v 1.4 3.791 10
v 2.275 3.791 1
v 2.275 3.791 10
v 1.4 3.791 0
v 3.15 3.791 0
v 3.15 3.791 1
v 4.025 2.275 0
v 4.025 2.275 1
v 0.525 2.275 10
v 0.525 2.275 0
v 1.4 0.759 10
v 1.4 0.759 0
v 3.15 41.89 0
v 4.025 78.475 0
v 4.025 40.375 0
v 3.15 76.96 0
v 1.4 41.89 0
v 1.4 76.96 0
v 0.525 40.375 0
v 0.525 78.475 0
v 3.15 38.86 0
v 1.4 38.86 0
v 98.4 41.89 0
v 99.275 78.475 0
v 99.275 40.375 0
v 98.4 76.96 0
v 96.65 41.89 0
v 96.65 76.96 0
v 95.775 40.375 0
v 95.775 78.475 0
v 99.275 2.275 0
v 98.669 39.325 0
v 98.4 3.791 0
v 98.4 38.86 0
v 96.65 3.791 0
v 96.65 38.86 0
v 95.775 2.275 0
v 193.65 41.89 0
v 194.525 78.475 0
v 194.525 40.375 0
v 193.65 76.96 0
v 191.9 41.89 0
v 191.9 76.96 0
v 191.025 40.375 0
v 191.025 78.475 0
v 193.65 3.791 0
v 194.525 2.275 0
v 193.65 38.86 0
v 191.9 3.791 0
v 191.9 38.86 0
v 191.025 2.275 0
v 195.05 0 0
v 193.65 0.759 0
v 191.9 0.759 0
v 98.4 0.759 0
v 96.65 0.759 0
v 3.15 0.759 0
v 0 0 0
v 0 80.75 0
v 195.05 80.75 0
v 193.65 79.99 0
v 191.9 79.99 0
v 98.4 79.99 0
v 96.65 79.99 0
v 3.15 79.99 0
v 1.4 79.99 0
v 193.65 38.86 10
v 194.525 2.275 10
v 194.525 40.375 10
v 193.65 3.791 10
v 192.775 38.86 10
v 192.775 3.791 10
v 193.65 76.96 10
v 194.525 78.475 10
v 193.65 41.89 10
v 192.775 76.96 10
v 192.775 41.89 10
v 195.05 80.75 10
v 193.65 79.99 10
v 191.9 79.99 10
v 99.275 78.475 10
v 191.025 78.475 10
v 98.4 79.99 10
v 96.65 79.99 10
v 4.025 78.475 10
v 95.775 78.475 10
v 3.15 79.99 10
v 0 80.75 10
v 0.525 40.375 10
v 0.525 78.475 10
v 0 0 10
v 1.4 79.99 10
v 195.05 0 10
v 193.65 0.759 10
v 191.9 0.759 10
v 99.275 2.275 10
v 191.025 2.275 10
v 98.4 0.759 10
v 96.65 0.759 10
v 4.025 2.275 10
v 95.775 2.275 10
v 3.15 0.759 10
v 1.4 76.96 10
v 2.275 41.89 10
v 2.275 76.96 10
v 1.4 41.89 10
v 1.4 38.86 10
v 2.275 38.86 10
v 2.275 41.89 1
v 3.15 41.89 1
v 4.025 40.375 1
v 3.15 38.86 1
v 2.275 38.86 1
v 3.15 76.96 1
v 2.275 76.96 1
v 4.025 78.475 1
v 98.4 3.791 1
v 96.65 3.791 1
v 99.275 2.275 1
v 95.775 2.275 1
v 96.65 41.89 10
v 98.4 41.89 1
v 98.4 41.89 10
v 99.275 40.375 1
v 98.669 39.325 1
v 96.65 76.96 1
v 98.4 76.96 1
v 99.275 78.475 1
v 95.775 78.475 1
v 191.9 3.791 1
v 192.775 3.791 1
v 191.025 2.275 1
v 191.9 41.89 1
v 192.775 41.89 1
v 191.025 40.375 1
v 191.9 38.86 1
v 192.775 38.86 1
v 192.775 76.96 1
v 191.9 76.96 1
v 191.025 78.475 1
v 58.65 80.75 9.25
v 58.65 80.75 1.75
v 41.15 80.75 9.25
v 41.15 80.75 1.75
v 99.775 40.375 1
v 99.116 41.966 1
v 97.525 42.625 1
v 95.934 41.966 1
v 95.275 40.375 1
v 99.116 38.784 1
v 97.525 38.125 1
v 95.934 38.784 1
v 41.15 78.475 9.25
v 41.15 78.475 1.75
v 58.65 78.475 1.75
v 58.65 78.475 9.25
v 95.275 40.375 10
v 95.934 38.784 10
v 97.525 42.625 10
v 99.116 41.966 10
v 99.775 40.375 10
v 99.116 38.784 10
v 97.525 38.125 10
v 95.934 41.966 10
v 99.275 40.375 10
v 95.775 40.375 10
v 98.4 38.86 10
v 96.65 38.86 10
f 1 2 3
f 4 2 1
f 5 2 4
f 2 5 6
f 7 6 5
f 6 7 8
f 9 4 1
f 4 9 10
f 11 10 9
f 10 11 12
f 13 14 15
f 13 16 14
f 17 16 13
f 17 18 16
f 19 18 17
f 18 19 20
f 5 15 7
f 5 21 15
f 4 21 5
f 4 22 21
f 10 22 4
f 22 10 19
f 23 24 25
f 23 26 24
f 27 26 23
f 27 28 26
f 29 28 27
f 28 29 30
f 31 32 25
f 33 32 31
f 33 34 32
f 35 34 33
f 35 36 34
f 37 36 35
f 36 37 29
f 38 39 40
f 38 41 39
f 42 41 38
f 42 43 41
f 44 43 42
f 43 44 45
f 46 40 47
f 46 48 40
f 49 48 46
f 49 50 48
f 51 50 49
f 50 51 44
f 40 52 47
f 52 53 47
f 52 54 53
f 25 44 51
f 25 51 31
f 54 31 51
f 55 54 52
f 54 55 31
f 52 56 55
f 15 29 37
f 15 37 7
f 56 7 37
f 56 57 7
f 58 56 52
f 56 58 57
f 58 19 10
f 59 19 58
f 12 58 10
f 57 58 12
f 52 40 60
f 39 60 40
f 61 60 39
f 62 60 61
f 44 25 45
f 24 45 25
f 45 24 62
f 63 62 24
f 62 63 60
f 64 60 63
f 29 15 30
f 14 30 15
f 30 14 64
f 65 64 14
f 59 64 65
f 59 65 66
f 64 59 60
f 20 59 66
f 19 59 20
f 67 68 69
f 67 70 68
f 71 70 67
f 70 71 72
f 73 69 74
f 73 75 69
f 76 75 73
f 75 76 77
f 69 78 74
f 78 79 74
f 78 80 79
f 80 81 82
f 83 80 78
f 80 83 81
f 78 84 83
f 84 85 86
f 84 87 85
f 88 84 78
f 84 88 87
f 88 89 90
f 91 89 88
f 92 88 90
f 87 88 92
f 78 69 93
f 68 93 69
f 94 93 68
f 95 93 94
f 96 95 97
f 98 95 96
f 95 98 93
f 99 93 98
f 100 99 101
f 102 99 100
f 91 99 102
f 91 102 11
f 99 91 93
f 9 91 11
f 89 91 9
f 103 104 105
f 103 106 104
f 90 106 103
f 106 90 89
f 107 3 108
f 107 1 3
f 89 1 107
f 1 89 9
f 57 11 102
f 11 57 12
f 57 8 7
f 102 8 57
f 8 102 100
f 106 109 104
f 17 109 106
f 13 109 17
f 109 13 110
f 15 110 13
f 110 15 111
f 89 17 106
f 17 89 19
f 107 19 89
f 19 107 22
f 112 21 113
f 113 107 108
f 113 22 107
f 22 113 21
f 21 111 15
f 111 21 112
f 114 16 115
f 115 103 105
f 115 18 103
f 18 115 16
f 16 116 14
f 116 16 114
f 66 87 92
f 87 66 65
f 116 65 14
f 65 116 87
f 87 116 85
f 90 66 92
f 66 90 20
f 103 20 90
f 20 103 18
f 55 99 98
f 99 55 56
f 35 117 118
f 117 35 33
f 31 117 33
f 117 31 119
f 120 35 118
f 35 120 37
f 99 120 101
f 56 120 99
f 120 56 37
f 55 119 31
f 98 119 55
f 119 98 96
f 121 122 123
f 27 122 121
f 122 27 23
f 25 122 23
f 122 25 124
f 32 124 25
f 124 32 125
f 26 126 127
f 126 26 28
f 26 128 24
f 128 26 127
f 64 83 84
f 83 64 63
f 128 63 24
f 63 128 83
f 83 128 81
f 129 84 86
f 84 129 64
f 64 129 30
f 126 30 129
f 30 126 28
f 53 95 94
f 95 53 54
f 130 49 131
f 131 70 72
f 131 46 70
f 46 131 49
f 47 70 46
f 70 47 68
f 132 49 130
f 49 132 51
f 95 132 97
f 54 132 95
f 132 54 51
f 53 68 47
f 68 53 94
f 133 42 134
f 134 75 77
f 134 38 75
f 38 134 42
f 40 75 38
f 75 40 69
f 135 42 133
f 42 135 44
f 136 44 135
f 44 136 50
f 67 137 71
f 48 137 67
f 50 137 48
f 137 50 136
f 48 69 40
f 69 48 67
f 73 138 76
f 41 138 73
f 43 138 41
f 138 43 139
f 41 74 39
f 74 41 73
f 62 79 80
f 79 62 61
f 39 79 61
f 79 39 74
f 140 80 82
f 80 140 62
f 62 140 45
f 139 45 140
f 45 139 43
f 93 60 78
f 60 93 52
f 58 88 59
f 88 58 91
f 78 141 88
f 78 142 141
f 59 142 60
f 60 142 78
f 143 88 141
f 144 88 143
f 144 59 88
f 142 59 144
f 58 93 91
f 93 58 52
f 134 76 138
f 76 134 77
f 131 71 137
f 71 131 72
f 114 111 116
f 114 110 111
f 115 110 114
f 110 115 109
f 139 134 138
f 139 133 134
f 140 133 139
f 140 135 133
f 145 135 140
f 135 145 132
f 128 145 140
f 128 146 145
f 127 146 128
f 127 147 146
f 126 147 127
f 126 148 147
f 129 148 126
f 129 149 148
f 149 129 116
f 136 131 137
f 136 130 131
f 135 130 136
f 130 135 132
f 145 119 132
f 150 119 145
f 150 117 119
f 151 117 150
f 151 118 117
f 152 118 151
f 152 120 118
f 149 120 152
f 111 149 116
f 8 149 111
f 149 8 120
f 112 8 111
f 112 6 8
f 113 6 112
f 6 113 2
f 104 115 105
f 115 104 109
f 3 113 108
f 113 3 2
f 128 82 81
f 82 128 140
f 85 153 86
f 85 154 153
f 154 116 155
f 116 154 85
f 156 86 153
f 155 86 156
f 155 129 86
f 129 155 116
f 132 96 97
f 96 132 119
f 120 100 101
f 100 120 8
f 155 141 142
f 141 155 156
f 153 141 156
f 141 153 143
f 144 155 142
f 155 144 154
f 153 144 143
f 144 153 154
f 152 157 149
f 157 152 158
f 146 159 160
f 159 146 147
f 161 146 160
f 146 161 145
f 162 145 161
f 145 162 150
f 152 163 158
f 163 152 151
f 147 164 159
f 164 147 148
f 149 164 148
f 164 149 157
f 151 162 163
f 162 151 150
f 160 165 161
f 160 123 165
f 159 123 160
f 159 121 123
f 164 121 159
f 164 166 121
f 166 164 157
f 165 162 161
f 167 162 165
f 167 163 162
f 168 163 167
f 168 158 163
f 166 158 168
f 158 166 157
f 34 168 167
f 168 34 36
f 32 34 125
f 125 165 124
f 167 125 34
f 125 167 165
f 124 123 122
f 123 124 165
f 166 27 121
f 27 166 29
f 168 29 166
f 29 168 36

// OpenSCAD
// file: vars.scad
sw = 14.5;		// switch body footprint width
edge= 15.6;		// switch body (including edge) footprint width
clp = 5;		// width of switch clipping mechanism
clipDepth=1.5;	// depth(z) needed for clipping mechanism
kc = 19.05;		// overall switch footprint (including cap)
thcP = 1.5;		// thickness of plate
width = 10;		// no. of switches width(x) wise
height = 4;		// no. of switches height(y) wisw
screwD=3.5;		// screw diameter
feetD=4.5;		// foot screw diameter
// main file
include <vars.scad>;
union() {
	difference() {
		difference() {
			difference() {
				cube([(kc*width)+(kc-sw),(kc*height)+(kc-sw),10],0);
			}

			for(i = [0:2]) {
				for(j = [0:2]) {
					translate([(i*0.5*kc*width)+((kc-sw)/2),(j*0.5*kc*height)+((kc-sw)/2),0]) {
						cylinder(10,d1=screwD,d2=screwD,true);
					}
				}
			}
		}
		translate([(0.5*kc*width)+((kc-sw)/2),(0.5*kc*height)+((kc-sw)/2),5.5]) {
			cube([(kc*width),(kc*height),9],center=true);
		}
		translate([(0.25*kc*width)+((kc-sw)/2),(1*kc*height)+((kc-sw)/2),5.5]) {
			cube([17.5,90,7.5],true);
		}
	}
	translate([(0.5*kc*width)+((kc-sw)/2),(0.5*kc*height)+((kc-sw)/2),0]) {
		difference() {
			cylinder(10,d1=screwD+1,d2=screwD+1,true);
			cylinder(10,d1=screwD,d2=screwD,true);
		}
	}

}
